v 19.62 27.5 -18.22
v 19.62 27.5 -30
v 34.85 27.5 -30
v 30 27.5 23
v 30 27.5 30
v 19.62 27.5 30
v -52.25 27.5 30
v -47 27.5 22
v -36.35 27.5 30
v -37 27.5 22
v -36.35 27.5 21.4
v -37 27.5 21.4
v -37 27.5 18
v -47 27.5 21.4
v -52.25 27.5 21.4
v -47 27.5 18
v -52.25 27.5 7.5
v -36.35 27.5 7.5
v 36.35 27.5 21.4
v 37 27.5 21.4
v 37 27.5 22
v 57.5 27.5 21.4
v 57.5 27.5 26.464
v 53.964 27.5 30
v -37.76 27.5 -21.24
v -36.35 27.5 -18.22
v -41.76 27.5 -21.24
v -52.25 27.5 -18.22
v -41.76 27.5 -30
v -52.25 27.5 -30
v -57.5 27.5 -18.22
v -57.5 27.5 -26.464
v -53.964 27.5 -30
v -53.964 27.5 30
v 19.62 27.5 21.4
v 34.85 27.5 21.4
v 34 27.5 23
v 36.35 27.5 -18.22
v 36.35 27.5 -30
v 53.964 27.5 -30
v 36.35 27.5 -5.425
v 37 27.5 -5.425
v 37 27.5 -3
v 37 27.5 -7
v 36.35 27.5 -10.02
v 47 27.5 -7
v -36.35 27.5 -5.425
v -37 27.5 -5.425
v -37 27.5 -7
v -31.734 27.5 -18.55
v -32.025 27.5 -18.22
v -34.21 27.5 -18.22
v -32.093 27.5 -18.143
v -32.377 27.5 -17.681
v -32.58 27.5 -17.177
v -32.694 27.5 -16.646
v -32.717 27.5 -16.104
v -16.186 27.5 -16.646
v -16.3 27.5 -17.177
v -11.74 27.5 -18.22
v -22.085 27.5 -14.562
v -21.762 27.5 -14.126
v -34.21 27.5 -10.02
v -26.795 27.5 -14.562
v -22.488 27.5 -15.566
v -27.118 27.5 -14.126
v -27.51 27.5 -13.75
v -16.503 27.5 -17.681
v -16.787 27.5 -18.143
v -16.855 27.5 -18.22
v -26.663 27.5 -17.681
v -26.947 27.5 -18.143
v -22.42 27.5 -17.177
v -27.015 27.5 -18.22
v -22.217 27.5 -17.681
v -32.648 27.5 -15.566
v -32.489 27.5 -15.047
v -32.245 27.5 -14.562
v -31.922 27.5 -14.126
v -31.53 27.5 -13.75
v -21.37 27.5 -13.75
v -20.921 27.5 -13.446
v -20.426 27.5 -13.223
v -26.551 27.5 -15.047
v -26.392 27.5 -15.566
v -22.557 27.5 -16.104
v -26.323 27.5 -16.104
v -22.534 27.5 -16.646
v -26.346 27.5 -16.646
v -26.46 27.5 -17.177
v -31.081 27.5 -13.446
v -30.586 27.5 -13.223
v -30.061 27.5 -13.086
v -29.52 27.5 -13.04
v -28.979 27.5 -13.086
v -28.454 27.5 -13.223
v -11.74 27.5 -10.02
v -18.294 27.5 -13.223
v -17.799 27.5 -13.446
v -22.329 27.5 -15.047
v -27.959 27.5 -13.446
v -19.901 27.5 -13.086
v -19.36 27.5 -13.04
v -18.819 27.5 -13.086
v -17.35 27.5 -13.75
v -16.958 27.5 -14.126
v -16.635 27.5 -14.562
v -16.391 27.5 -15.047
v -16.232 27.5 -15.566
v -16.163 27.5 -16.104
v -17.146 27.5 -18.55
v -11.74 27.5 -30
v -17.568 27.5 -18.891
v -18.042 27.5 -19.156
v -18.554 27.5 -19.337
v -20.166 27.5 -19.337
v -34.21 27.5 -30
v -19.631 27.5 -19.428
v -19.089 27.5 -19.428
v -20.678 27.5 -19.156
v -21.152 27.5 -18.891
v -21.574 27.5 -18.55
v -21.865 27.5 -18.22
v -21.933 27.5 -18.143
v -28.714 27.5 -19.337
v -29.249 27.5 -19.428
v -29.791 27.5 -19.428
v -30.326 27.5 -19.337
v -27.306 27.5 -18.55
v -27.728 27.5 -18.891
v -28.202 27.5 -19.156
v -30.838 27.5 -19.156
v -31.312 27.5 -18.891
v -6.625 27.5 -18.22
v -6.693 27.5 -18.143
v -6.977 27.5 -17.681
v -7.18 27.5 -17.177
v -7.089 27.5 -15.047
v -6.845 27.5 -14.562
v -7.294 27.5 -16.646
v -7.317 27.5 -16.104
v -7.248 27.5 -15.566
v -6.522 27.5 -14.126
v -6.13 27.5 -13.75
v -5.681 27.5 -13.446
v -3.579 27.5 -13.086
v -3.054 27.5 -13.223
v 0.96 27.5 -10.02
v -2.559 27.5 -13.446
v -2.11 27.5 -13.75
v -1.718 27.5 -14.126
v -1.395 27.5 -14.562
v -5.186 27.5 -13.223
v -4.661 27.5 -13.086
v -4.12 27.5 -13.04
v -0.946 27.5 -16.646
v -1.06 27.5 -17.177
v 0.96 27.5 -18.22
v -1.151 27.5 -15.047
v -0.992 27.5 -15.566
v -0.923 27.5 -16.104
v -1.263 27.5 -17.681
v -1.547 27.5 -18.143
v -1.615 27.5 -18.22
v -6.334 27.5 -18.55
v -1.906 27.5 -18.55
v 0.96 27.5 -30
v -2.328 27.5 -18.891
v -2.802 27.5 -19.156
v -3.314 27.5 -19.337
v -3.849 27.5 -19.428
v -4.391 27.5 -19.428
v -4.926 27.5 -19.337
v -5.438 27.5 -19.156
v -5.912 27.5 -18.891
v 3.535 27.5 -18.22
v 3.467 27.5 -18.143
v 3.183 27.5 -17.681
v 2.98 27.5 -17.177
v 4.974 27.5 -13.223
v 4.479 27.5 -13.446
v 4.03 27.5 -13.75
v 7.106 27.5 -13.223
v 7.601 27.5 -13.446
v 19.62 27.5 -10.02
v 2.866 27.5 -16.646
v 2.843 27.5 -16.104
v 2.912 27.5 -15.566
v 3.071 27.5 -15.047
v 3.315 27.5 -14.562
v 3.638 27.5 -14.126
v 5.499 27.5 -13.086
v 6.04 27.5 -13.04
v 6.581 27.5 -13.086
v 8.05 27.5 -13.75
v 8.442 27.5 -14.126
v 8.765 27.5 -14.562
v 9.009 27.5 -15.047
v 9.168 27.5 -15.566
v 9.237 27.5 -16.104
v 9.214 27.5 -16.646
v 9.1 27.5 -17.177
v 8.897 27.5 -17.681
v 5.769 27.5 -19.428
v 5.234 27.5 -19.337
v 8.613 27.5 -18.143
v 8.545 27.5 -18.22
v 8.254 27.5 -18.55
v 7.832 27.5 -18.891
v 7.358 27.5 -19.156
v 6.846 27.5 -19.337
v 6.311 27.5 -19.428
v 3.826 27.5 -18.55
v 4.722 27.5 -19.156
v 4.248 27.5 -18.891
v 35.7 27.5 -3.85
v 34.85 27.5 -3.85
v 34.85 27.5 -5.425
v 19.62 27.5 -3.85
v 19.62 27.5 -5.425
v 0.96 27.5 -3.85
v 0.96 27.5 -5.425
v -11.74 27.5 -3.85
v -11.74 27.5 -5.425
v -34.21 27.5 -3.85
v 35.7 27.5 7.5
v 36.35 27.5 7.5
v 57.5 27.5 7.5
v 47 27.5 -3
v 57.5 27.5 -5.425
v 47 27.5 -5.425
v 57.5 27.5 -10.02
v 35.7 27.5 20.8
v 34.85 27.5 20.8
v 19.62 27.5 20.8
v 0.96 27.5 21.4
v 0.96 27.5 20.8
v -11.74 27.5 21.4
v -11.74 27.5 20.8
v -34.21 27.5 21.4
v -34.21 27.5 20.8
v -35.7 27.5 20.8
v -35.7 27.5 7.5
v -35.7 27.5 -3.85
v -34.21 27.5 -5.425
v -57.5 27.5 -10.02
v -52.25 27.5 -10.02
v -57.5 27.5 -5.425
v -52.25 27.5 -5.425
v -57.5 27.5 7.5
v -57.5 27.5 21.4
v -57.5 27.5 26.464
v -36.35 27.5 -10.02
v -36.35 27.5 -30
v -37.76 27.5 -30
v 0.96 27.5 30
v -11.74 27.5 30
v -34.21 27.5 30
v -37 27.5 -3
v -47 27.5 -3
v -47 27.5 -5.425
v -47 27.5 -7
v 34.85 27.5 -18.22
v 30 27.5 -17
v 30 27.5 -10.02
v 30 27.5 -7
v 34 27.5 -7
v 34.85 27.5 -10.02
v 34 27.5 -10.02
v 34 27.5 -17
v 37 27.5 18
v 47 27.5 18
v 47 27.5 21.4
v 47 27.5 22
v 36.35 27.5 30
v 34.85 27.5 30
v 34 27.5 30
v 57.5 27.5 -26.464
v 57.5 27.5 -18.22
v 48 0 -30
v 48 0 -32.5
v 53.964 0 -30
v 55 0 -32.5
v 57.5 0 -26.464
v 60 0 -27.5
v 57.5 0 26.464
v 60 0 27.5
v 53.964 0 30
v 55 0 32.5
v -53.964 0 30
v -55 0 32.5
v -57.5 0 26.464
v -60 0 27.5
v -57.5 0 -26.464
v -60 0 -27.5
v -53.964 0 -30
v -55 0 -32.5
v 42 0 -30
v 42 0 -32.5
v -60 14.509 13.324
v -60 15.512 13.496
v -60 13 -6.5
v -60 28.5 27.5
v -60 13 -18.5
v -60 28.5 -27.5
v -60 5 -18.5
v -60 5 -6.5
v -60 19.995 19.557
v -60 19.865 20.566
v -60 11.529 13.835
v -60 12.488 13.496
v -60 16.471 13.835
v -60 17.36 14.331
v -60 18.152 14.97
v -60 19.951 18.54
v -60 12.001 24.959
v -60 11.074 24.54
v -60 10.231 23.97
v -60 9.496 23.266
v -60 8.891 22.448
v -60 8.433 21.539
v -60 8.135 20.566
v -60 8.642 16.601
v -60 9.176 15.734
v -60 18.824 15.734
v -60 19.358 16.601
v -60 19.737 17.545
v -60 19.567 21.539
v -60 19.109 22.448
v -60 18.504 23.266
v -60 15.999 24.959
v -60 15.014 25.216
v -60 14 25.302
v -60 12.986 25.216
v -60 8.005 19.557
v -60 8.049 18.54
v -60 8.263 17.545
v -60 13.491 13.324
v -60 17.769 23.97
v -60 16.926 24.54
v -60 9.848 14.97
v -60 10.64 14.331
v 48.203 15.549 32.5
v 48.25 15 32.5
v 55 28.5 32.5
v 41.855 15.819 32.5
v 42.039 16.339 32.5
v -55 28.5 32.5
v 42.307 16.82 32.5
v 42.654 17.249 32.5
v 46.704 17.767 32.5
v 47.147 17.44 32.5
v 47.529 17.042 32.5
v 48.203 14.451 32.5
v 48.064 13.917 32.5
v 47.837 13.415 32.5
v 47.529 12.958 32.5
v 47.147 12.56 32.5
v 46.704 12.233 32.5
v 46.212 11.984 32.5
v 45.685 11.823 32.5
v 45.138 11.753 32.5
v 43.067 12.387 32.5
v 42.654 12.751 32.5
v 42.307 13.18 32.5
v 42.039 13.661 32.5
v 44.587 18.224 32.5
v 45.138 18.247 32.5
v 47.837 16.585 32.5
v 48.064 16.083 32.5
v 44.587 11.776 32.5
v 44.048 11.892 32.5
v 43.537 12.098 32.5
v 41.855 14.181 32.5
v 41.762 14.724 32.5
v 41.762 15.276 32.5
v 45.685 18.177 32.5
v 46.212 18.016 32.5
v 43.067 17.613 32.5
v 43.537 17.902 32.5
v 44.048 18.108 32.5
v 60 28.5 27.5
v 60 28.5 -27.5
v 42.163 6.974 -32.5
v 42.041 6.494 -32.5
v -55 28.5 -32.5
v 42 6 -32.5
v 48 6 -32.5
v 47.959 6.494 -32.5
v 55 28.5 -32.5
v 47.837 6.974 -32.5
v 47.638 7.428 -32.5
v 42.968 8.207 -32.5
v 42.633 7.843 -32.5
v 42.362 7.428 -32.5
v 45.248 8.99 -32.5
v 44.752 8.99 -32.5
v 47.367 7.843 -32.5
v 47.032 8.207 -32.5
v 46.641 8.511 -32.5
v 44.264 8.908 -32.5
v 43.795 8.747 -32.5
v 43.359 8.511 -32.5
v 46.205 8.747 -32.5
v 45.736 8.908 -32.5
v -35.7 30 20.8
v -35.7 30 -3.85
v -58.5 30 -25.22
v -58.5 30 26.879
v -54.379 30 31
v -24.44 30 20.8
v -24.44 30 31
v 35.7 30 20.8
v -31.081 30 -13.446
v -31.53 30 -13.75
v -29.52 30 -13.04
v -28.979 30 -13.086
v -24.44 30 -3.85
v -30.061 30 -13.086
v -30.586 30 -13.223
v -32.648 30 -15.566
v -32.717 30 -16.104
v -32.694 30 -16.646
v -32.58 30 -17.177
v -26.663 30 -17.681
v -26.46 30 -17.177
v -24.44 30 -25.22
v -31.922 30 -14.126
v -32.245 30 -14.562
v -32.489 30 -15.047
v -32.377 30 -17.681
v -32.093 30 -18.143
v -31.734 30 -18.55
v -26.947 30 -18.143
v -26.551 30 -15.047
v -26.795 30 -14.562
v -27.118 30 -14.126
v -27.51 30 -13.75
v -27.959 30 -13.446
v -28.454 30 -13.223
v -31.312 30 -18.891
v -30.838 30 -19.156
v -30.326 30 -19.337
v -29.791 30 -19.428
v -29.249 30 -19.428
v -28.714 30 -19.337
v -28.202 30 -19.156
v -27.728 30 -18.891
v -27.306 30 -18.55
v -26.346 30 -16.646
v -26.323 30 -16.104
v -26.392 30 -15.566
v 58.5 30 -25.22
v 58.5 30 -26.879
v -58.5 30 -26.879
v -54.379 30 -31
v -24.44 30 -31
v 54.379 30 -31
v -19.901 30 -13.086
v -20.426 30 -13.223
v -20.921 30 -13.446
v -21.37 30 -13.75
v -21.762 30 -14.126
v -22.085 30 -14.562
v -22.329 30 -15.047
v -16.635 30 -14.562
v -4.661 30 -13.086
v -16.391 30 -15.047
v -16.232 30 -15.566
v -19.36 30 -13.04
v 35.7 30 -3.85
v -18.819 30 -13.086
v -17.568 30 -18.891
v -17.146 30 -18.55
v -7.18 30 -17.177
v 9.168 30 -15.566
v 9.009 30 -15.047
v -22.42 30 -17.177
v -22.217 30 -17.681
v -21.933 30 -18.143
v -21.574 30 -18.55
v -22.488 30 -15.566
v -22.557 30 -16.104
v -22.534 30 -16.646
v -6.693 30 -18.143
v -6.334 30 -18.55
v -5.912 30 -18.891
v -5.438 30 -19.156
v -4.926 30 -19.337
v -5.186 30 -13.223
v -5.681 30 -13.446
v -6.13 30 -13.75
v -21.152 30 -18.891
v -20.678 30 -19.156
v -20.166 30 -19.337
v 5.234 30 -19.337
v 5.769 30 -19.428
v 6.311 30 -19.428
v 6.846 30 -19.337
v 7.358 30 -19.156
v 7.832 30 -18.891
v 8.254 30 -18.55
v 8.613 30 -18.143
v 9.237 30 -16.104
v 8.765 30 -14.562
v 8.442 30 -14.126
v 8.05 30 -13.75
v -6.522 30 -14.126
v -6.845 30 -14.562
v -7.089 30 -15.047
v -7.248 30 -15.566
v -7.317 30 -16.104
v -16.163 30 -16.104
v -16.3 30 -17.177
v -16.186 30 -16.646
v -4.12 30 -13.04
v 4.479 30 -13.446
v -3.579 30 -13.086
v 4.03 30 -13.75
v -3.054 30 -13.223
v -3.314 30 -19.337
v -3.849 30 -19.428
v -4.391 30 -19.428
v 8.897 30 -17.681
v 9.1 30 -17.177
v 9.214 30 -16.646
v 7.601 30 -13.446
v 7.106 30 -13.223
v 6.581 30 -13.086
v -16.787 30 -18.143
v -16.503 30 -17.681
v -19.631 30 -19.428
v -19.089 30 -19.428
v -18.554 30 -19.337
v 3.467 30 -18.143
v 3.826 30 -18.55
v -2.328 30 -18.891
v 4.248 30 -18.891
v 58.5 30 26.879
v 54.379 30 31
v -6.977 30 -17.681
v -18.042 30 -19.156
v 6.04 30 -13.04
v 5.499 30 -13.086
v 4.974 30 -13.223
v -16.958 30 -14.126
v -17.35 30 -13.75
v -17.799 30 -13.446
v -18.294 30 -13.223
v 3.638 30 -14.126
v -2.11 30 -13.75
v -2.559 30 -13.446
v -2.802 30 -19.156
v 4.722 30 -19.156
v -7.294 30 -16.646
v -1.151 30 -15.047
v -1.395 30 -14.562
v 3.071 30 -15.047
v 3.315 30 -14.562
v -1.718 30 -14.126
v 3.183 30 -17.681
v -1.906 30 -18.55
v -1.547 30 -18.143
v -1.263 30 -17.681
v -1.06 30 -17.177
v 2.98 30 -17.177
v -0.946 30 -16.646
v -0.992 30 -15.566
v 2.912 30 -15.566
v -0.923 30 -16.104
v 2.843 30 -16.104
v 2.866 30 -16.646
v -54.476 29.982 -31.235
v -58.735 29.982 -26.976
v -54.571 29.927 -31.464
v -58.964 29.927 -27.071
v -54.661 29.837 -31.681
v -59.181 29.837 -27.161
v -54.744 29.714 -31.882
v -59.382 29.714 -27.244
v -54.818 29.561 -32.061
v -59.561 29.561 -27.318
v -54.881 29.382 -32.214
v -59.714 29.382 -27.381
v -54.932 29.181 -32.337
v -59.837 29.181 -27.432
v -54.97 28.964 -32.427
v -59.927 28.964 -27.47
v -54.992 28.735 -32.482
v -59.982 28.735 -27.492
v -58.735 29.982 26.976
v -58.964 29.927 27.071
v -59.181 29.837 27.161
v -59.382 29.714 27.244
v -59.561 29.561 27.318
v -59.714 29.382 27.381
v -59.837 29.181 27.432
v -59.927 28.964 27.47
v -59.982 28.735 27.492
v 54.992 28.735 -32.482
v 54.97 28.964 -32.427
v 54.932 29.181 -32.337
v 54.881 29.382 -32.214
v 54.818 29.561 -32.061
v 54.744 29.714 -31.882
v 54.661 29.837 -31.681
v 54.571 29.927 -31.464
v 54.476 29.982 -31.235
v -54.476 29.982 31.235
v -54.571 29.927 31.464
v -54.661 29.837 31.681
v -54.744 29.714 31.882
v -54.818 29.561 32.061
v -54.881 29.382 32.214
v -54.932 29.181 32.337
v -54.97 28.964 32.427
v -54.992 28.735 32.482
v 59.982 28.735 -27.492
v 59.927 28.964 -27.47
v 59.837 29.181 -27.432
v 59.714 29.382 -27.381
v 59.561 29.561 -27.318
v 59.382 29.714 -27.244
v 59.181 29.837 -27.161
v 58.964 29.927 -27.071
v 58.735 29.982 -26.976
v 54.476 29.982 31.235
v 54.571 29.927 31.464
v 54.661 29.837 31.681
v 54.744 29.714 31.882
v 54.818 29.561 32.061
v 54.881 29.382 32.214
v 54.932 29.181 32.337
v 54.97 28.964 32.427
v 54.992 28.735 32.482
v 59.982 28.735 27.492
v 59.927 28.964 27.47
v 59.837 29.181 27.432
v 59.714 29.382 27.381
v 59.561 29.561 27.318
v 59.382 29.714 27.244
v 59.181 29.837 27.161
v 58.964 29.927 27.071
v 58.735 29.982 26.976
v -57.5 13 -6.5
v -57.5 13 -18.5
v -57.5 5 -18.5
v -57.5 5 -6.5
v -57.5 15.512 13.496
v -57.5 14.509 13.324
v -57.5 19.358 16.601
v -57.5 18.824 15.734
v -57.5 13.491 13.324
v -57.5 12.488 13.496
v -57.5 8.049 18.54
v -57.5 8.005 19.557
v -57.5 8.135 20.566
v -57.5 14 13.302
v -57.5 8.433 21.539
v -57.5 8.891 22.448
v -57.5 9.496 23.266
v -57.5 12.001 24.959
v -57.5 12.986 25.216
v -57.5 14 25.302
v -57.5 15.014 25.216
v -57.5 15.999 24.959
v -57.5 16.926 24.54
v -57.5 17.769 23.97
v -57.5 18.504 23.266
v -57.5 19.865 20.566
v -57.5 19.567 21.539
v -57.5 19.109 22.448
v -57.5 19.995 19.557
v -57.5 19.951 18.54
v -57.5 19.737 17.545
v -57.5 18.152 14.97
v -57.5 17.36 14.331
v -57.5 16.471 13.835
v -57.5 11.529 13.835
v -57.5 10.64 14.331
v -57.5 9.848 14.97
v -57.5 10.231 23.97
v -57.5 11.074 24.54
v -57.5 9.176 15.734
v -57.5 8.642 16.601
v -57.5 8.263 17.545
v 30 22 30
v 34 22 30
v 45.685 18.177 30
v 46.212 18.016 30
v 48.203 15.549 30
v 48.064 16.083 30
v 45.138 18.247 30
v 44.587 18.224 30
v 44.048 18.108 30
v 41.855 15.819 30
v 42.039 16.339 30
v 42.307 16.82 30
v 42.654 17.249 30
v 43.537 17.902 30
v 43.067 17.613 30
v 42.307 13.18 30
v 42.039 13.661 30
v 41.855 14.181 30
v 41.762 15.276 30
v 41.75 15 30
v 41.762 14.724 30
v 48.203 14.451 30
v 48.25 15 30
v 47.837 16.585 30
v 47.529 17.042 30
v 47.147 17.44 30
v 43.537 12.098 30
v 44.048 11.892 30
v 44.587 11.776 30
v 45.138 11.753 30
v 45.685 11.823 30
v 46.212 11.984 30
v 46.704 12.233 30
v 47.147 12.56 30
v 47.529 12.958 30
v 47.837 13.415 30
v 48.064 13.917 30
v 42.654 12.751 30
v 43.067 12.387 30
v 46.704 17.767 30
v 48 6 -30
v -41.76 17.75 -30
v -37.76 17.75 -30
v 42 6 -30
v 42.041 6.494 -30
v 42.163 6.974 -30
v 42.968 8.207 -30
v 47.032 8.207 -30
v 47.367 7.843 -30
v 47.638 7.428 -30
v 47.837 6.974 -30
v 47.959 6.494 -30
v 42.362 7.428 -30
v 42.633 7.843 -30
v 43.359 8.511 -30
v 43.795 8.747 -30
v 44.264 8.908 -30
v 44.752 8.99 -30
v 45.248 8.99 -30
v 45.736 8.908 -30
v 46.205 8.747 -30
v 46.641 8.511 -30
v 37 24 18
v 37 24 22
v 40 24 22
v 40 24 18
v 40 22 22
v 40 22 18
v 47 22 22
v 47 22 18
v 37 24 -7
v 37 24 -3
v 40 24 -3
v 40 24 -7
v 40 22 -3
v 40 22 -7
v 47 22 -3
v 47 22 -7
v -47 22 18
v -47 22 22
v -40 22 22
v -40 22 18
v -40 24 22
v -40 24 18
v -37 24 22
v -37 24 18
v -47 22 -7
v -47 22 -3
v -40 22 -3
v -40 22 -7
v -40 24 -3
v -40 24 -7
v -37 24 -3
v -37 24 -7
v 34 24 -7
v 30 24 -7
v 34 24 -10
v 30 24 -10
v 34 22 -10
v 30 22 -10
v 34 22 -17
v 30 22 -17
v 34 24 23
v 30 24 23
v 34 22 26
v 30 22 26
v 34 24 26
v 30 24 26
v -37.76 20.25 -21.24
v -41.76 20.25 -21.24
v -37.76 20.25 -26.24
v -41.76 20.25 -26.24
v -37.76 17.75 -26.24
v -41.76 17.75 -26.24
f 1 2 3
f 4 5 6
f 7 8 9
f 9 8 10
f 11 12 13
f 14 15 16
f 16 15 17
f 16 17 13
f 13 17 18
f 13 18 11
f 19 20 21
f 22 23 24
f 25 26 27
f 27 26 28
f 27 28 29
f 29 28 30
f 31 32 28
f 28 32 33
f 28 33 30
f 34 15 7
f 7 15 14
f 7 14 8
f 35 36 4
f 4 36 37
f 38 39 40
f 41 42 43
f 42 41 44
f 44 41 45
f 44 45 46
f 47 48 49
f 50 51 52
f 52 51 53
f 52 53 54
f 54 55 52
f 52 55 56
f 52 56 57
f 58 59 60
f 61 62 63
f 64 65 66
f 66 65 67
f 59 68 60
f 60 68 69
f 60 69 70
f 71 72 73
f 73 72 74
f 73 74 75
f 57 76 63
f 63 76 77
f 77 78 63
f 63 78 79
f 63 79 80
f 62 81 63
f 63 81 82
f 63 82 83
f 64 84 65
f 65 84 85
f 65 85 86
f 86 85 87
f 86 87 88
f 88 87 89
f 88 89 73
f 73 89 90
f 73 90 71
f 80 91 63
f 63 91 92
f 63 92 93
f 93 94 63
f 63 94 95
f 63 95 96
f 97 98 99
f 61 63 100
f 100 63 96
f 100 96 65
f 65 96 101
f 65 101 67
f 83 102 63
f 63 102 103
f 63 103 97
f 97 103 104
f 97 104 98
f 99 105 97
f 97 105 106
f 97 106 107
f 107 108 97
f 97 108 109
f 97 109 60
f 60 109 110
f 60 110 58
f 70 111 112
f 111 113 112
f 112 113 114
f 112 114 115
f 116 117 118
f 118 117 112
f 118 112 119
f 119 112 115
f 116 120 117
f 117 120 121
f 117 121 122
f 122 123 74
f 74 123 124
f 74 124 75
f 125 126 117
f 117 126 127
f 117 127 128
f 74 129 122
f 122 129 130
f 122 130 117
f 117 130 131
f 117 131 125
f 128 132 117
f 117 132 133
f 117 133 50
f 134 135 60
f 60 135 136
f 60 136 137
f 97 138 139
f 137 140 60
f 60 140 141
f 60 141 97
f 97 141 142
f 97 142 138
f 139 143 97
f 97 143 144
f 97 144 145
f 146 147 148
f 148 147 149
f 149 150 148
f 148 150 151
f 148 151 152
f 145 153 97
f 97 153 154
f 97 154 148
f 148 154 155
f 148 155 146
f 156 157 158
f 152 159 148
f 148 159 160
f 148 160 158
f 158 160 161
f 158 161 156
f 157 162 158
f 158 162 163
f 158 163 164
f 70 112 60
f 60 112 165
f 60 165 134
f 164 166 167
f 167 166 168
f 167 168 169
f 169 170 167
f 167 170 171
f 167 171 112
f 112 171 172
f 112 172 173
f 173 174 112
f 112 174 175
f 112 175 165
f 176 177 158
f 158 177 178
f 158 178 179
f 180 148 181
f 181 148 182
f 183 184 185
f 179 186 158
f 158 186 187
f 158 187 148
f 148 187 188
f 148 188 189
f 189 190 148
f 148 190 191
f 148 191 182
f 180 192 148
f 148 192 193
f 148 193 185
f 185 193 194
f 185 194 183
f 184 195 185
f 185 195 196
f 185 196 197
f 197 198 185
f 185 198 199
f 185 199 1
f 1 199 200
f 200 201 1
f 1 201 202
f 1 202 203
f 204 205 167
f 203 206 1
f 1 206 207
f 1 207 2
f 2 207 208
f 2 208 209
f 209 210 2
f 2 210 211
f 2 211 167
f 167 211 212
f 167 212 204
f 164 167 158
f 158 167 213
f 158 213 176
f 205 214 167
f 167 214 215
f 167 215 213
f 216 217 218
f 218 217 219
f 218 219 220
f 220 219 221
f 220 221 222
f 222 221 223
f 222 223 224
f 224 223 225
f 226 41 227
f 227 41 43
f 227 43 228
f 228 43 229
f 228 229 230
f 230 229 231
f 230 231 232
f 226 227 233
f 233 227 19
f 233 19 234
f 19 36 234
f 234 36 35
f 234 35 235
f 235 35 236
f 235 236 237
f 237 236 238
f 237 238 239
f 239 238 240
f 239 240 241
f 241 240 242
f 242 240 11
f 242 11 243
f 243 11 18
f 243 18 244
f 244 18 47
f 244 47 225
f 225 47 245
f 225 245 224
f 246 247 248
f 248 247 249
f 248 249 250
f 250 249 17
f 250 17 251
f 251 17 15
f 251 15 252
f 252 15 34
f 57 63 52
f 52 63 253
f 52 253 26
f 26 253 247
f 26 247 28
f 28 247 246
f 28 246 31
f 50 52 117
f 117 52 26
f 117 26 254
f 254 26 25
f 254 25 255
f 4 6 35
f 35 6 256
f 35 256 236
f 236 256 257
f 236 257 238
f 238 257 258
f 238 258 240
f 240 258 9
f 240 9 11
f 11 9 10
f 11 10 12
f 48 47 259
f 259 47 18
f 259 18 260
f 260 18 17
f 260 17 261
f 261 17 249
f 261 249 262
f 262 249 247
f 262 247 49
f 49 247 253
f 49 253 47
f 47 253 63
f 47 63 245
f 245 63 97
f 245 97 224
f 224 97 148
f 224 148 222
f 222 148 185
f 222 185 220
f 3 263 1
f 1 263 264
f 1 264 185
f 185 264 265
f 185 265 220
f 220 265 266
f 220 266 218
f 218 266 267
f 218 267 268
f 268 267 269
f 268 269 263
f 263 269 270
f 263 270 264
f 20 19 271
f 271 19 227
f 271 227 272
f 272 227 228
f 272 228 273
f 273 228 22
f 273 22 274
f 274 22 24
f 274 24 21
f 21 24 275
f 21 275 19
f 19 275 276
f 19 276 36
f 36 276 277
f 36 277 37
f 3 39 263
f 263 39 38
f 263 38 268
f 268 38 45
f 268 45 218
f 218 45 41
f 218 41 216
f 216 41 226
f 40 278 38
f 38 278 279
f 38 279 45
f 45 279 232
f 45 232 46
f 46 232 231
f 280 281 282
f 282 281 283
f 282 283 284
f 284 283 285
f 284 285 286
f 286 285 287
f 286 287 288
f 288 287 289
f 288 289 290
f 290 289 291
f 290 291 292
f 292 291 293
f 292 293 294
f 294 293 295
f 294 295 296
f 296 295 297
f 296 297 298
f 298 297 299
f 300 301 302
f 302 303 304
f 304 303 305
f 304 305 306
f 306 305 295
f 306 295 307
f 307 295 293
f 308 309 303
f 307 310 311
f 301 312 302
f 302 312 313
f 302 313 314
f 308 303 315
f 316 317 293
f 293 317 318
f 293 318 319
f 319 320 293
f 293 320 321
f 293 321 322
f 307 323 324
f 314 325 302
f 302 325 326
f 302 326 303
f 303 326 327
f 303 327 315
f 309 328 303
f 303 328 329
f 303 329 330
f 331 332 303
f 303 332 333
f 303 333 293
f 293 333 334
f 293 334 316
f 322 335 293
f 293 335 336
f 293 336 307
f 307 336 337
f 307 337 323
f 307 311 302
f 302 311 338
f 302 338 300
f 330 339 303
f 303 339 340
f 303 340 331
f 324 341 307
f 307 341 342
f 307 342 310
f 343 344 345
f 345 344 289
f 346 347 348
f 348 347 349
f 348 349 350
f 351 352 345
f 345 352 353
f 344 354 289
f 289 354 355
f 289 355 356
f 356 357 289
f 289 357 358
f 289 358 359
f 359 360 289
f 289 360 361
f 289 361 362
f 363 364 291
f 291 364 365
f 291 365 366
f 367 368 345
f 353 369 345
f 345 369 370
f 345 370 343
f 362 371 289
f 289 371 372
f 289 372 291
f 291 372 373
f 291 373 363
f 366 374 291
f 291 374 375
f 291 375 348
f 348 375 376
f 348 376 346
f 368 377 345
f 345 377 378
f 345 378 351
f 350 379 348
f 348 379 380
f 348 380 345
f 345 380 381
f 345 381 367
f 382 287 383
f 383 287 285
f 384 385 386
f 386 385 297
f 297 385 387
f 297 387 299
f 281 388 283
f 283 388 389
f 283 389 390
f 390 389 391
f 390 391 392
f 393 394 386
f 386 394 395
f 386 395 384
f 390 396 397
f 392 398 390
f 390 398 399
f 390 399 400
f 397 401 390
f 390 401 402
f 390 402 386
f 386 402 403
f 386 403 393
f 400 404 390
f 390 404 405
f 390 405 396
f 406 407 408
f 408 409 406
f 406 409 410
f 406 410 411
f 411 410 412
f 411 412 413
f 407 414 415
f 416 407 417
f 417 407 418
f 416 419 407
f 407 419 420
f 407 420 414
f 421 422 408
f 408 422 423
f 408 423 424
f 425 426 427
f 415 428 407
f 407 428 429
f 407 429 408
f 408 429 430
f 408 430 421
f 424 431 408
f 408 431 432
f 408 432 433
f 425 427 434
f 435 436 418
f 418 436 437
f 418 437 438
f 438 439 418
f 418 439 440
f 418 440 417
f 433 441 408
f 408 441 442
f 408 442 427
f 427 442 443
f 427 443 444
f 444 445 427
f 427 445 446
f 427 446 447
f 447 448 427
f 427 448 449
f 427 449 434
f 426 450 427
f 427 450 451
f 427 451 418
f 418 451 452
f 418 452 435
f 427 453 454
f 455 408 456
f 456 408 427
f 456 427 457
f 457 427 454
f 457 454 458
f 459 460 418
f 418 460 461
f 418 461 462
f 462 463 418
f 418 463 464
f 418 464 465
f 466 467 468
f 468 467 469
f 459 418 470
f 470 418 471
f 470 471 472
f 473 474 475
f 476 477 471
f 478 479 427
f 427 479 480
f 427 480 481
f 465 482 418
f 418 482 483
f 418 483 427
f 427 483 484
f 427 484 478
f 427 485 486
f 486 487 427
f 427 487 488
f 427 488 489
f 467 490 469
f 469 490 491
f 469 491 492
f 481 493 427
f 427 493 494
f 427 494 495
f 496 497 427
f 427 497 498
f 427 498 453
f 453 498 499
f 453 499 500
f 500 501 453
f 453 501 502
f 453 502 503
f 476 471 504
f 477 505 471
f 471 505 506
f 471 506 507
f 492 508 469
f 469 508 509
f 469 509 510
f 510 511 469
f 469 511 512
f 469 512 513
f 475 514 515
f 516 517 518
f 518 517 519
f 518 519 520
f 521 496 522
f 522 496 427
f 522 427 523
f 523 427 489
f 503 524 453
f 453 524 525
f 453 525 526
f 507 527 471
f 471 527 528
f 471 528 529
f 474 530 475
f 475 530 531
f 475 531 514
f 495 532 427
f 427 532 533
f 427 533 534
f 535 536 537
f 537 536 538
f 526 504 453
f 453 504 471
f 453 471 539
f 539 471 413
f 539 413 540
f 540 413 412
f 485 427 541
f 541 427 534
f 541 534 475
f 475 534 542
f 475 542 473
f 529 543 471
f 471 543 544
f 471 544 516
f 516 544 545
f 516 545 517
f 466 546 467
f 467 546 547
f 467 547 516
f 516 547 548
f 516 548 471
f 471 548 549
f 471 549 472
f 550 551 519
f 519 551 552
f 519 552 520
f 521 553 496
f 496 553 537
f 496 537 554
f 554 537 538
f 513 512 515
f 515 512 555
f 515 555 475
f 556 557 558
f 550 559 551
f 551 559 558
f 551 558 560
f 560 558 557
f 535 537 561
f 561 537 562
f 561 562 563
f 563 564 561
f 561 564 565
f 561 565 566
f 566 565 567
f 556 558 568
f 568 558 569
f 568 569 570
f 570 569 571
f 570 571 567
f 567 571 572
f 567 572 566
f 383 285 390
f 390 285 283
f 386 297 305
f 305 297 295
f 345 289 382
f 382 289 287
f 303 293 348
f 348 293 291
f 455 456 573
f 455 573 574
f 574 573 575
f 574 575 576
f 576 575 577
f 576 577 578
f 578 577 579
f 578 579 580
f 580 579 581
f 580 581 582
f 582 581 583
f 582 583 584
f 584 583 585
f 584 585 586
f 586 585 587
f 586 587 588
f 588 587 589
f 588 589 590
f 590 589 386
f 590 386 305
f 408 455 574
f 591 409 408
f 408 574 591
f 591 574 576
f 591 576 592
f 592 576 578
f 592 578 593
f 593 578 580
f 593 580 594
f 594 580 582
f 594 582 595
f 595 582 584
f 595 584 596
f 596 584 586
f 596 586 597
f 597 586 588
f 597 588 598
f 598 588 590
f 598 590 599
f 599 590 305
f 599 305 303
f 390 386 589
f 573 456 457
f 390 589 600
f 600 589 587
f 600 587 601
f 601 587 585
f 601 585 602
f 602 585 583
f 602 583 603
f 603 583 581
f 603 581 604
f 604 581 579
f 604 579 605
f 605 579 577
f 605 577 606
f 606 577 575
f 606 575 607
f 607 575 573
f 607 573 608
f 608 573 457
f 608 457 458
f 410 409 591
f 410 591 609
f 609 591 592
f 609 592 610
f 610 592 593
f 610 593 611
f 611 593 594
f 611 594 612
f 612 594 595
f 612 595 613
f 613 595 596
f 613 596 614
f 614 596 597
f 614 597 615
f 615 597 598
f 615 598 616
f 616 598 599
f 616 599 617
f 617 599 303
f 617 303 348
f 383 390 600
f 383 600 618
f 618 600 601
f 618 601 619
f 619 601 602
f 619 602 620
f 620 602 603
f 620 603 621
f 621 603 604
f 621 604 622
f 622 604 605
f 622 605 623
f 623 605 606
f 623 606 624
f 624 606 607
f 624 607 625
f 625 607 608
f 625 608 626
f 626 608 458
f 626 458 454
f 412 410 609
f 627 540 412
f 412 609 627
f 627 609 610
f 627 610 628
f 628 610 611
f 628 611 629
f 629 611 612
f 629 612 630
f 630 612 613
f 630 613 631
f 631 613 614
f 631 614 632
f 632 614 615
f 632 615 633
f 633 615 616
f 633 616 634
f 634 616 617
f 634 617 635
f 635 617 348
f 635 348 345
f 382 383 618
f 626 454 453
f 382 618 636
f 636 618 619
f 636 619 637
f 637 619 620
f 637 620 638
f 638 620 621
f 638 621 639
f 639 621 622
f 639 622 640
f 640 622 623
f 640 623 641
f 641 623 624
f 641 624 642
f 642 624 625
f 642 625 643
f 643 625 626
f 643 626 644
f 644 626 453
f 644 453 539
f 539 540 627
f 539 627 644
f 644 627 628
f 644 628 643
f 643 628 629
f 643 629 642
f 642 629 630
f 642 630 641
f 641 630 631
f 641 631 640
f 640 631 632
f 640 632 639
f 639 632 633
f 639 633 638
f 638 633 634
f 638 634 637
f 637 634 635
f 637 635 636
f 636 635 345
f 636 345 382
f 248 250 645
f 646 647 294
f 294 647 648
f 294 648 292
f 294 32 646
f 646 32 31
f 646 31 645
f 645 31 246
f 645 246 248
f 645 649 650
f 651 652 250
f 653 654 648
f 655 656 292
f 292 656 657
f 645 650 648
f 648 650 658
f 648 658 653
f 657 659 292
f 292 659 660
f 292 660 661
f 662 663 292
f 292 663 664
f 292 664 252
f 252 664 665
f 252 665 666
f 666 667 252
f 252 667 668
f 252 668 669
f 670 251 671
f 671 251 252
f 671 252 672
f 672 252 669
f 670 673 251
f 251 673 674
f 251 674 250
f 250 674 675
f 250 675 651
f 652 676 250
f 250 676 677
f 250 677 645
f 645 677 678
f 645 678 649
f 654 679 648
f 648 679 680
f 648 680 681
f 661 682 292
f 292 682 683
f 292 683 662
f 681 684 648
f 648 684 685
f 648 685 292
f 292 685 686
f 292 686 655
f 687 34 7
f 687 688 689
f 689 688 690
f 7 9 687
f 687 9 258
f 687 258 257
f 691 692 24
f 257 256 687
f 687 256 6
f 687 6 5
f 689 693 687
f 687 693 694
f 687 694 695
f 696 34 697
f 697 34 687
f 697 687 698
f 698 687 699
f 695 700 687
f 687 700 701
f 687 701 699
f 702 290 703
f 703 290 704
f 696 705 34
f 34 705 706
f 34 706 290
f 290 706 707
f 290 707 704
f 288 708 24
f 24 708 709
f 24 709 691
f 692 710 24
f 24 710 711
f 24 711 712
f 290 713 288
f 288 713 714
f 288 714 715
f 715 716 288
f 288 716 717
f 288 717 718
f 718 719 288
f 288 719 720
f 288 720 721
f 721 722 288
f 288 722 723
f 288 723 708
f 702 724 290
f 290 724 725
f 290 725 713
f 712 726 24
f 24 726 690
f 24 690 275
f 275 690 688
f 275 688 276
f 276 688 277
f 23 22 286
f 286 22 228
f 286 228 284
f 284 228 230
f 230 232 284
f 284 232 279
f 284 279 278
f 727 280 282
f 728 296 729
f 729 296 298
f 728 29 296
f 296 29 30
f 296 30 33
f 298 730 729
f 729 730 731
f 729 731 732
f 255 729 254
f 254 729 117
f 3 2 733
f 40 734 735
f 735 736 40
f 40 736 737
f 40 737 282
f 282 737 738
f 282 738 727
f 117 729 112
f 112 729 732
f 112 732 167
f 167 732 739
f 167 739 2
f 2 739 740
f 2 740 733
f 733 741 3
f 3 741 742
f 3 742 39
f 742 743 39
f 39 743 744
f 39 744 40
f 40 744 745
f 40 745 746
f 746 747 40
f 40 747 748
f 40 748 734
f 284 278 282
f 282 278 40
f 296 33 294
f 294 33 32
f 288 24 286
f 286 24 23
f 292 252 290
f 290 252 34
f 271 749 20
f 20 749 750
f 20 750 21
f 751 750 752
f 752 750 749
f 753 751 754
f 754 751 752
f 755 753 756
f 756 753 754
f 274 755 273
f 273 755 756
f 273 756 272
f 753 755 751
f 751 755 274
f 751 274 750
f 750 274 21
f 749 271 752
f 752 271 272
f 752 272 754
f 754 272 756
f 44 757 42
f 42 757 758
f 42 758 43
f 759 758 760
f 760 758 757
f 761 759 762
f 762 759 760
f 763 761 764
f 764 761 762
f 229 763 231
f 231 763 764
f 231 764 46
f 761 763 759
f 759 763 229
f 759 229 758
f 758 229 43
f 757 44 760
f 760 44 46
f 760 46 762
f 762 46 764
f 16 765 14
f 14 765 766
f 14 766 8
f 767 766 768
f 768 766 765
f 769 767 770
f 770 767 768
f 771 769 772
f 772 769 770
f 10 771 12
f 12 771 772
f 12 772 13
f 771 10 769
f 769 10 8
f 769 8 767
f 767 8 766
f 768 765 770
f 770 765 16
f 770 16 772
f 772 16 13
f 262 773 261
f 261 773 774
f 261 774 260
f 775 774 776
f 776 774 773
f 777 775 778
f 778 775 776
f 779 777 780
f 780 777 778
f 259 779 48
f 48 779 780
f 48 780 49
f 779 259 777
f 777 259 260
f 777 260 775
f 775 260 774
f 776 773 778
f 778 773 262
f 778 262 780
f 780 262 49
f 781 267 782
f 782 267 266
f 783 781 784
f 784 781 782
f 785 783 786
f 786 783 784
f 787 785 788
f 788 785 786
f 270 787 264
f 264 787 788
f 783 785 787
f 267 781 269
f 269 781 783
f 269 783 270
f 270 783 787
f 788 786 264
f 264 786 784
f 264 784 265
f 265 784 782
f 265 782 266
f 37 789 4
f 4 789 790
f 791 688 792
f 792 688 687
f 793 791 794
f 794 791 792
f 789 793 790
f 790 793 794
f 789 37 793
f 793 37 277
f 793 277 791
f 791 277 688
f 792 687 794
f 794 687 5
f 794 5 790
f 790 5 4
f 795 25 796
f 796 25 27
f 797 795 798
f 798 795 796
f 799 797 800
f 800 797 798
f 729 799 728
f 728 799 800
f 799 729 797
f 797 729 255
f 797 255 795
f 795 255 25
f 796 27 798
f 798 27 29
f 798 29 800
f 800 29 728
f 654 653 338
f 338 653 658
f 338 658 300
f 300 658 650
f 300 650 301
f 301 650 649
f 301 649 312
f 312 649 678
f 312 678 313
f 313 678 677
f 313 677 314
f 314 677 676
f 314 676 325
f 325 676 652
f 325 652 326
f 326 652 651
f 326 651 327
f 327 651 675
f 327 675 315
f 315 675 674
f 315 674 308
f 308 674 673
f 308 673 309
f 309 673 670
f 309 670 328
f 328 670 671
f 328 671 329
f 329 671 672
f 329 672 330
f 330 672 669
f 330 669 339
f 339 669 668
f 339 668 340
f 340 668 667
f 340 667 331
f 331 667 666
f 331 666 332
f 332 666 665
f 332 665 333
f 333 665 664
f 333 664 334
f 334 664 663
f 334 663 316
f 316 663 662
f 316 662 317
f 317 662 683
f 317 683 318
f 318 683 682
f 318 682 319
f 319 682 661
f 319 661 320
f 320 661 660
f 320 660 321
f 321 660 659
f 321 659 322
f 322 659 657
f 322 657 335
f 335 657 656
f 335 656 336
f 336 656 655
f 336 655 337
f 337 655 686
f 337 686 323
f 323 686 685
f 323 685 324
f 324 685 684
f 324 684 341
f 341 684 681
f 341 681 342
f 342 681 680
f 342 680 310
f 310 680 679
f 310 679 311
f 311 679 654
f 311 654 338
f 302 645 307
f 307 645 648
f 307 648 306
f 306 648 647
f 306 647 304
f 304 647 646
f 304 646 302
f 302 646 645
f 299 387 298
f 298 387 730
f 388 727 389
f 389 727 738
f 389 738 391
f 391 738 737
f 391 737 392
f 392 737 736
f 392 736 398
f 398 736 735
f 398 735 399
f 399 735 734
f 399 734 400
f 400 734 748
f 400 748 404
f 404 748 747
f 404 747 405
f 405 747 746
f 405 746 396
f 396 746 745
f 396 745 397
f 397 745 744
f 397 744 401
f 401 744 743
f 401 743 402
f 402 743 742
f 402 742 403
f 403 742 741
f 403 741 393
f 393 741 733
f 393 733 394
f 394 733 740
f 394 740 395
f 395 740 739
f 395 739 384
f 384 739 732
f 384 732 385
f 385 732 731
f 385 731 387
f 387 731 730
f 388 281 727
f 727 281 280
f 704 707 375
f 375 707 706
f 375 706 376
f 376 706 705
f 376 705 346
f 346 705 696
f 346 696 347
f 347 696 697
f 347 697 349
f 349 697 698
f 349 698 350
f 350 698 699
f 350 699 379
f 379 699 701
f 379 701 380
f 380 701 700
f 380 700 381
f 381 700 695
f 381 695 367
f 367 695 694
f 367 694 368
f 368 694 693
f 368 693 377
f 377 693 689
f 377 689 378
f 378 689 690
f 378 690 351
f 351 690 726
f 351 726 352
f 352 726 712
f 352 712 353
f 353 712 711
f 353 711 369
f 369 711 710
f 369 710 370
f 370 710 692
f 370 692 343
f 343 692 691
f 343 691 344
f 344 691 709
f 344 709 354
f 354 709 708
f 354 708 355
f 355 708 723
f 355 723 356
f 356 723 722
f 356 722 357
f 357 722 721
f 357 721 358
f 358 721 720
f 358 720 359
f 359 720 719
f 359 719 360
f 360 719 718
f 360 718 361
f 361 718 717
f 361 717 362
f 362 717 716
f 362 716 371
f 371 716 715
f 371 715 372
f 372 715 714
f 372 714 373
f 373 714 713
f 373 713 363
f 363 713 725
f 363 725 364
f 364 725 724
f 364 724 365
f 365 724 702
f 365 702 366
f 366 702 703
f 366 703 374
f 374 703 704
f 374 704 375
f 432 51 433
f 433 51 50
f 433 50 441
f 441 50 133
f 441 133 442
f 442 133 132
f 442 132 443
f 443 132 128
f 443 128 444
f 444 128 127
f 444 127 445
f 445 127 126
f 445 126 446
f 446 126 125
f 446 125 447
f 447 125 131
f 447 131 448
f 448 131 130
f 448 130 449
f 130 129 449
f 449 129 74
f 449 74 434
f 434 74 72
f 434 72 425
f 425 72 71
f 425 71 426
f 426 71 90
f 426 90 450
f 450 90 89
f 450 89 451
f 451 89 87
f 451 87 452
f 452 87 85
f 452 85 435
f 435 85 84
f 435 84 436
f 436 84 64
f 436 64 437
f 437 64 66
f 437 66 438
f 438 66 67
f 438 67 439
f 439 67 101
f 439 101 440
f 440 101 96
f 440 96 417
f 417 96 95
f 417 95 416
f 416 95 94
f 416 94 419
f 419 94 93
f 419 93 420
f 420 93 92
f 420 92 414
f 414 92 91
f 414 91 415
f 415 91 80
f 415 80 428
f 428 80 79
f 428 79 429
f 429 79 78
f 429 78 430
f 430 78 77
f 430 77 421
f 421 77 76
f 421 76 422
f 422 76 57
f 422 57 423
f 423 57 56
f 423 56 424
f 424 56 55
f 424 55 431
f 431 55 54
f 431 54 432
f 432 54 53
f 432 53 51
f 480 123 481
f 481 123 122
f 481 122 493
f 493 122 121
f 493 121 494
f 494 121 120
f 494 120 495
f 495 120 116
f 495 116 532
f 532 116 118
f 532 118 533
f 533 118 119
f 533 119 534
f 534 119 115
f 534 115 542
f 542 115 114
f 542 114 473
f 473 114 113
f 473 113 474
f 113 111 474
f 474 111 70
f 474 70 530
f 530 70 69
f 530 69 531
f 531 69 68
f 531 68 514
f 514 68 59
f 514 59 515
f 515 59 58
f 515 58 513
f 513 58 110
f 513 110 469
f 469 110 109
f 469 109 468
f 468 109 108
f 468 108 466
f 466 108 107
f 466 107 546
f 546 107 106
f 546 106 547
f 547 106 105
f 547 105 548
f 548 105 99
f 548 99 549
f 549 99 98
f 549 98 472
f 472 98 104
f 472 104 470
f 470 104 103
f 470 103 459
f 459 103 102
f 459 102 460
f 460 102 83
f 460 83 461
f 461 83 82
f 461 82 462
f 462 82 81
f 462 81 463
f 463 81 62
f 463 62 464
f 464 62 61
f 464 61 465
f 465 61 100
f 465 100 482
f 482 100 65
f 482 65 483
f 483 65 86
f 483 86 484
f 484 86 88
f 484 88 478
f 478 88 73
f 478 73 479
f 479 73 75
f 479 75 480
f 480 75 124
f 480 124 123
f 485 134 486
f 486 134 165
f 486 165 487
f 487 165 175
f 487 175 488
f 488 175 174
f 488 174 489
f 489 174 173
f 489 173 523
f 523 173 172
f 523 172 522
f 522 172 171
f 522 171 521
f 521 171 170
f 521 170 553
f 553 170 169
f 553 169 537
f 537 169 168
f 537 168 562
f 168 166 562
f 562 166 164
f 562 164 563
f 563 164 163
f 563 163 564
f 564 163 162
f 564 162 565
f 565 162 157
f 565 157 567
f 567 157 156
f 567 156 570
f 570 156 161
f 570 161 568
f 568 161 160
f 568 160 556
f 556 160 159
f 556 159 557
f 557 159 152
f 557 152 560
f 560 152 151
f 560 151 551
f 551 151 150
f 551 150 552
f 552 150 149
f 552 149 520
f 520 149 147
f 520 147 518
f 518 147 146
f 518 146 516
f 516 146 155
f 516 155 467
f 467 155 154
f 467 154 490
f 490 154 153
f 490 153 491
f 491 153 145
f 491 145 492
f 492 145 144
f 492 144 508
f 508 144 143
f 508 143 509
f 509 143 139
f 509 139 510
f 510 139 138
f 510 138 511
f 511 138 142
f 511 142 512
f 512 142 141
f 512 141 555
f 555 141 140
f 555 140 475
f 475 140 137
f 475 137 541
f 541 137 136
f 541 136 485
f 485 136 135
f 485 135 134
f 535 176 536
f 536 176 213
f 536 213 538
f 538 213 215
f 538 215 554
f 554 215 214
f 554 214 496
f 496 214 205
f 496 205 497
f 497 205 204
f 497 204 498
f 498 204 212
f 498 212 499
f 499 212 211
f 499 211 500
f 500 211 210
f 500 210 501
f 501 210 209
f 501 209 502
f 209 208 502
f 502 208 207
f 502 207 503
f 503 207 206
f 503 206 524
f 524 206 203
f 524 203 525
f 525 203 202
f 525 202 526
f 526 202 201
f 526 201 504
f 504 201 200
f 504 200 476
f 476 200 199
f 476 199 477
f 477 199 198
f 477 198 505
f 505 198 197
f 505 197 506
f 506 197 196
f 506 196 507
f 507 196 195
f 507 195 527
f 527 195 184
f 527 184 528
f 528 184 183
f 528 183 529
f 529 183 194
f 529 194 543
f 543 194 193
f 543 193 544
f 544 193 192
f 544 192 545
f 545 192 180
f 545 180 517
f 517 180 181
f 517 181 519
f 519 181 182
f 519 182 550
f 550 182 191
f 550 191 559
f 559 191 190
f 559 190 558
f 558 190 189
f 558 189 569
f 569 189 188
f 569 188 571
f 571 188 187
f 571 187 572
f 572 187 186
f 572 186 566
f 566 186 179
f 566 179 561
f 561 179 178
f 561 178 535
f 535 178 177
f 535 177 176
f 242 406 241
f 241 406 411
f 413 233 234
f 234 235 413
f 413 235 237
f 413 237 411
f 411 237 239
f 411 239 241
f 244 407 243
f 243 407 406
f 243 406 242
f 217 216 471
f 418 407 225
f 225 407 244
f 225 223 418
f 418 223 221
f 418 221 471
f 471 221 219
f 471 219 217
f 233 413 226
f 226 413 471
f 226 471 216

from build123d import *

# Parameters (mm, degrees)
SKETCH1_W               = 120
SKETCH1_H               = 65
BOSS_EXTRUDE1_DEPTH     = 30
CHAMFER1_SIZE           = 5
FILLET1_R               = 1.5
SHELL1_T                = -2.5
BOSS_EXTRUDE2_DEPTH     = 2
LPATTERN1_COUNT         = 2
LPATTERN1_PITCH         = 25
MIRROR1_COPY_1_DEPTH    = 2
BOSS_EXTRUDE3_DEPTH     = 2
BOSS_EXTRUDE4_DEPTH     = 2
CUT_EXTRUDE1_REACH      = 129.892
SKETCH7_R               = 6
SKETCH7_W               = 12
SKETCH7_H               = 8
CUT_EXTRUDE3_DEPTH      = 94.407708461
CUT_EXTRUDE3_DEPTH_BACK = 10
SKETCH9_R               = 3.25
CUT_EXTRUDE4_DEPTH      = 10
SKETCH6_R               = 3.2
SKETCH6_W               = 71.4
SKETCH6_H               = 24.65
CUT_EXTRUDE5_DEPTH      = 10


with BuildPart() as part:
    # Sketch1 → Boss-Extrude1 (new body)
    with BuildSketch(Plane(origin=(0, 0, 0), x_dir=(1, 0, 0), z_dir=(0, 1, 0))):
        Rectangle(SKETCH1_W, SKETCH1_H)
    extrude(amount=BOSS_EXTRUDE1_DEPTH)

    # Chamfer1
    chamfer1_edges = [part.edges().sort_by_distance(p)[0] for p in [
        (-60, 15, -32.5),
        (60, 15, -32.5),
        (60, 15, 32.5),
        (-60, 15, 32.5),
    ]]
    chamfer(chamfer1_edges, length=CHAMFER1_SIZE)

    # Fillet1
    fillet1_edges = [part.edges().sort_by_distance(p)[0] for p in [
        (0, 30, -32.5),
        (60, 30, 0),
        (-60, 30, 0),
        (0, 30, 32.5),
        (-57.5, 30, 30),
        (57.5, 30, 30),
        (-57.5, 30, -30),
        (57.5, 30, -30),
    ]]
    fillet(fillet1_edges, radius=FILLET1_R)

    # Shell1
    shell1_openings = [part.faces().sort_by_distance(p)[0] for p in [
        (0, 0, 0),
    ]]
    offset(amount=SHELL1_T, openings=shell1_openings, kind=Kind.INTERSECTION)

    # Sketch2 → Boss-Extrude2 (add, symmetric)
    with BuildSketch(Plane.XY.offset(20)):
        Polygon((47, 27.5), (47, 22), (40, 22), (40, 24), (37, 24), (37, 27.5), align=None)
    boss_extrude2 = extrude(amount=BOSS_EXTRUDE2_DEPTH, both=True)

    # LPattern1: Boss-Extrude2 ×2
    with Locations(*[(0, 0, -i * LPATTERN1_PITCH) for i in range(1, LPATTERN1_COUNT)]):
        add(boss_extrude2)

    # Mirror1: Boss-Extrude2 across plane
    add(boss_extrude2.mirror(Plane(origin=(0, 0, 0), x_dir=(0, 0, 1), z_dir=(1, 0, 0))))

    # Mirror1 copy 1 sketch → Mirror1 copy 1 (add, symmetric)
    with BuildSketch(Plane(origin=(0, 0, -5), x_dir=(-1, 0, 0), z_dir=(0, 0, 1))):
        Polygon((47, -27.5), (47, -22), (40, -22), (40, -24), (37, -24), (37, -27.5), align=None)
    extrude(amount=MIRROR1_COPY_1_DEPTH, both=True)

    # Sketch3 → Boss-Extrude3 (add, symmetric)
    with BuildSketch(Plane(origin=(32, 0, 0), x_dir=(0, 0, -1), z_dir=(1, 0, 0))):
        Polygon((17, 27.5), (17, 22), (10, 22), (10, 24), (7, 24), (7, 27.5), align=None)
        Polygon((-23, 27.5), (-30, 27.5), (-30, 22), (-26, 22), (-26, 24), (-23, 24), align=None)
    extrude(amount=BOSS_EXTRUDE3_DEPTH, both=True)

    # Sketch5 → Boss-Extrude4 (add, symmetric)
    with BuildSketch(Plane(origin=(-39.76, 0, 0), x_dir=(0, 0, -1), z_dir=(1, 0, 0))):
        Polygon((21.24, 27.5), (21.24, 20.25), (26.24, 20.25), (26.24, 17.75), (30, 17.75), (30, 27.5), align=None)
    extrude(amount=BOSS_EXTRUDE4_DEPTH, both=True)

    # Sketch7 → Cut-Extrude1 (cut, up to next)
    with BuildSketch(Plane.ZY.offset(60), mode=Mode.PRIVATE) as cut_extrude1_sk1:
        with Locations((19.3022, 14)):
            Circle(SKETCH7_R)
    cut_extrude1_tool1 = extrude(cut_extrude1_sk1.sketch, amount=-CUT_EXTRUDE1_REACH, mode=Mode.PRIVATE) & part.part
    # Sketch7 → Cut-Extrude1 (cut, up to next)
    with BuildSketch(Plane.ZY.offset(60), mode=Mode.PRIVATE) as cut_extrude1_sk2:
        with Locations((-12.5, 9)):
            Rectangle(SKETCH7_W, SKETCH7_H)
    cut_extrude1_tool2 = extrude(cut_extrude1_sk2.sketch, amount=-CUT_EXTRUDE1_REACH, mode=Mode.PRIVATE) & part.part
    add(cut_extrude1_tool1.solids().sort_by_distance((-60, 14, 19.3022))[0], mode=Mode.SUBTRACT)
    add(cut_extrude1_tool2.solids().sort_by_distance((-60, 9, -12.5))[0], mode=Mode.SUBTRACT)

    # Sketch8 → Cut-Extrude3 (cut, two sides: drawn at the far end of the back side and taken through both)
    with BuildSketch(Plane(origin=(0, 0, -32.5), x_dir=(-1, 0, 0), z_dir=(0, 0, -1)).offset(-CUT_EXTRUDE3_DEPTH_BACK)):
        with BuildLine():
            Line((-42, -234.178500307), (-42, 0))
            Line((-42, 0), (-42, 6))
            ThreePointArc((-42, 6), (-45, 9), (-48, 6))
            Line((-48, 6), (-48, 0))
            Line((-48, 0), (-48, -234.178500307))
            Line((-48, -234.178500307), (-48, -702.535500922))
            Line((-48, -702.535500922), (-42, -702.535500922))
            Line((-42, -702.535500922), (-42, -234.178500307))
        make_face()
    extrude(amount=CUT_EXTRUDE3_DEPTH + CUT_EXTRUDE3_DEPTH_BACK, mode=Mode.SUBTRACT)

    # Sketch9 → Cut-Extrude4 (cut)
    with BuildSketch(Plane.XY.offset(32.5)):
        with Locations((45, 15)):
            Circle(SKETCH9_R)
    extrude(amount=-CUT_EXTRUDE4_DEPTH, mode=Mode.SUBTRACT)

    # Sketch6 → Cut-Extrude5 (cut)
    with BuildSketch(Plane(origin=(0, 30, 0), x_dir=(1, 0, 0), z_dir=(0, 1, 0))):
        with Locations(Location((-29.52, 16.24, 0), (0, 0, 270))):
            Circle(SKETCH6_R)
        with Locations(Location((-19.36, 16.24, 0), (0, 0, 270))):
            Circle(SKETCH6_R)
        with Locations(Location((-4.12, 16.24, 0), (0, 0, 270))):
            Circle(SKETCH6_R)
        with Locations(Location((6.04, 16.24, 0), (0, 0, 270))):
            Circle(SKETCH6_R)
        with Locations((0, -8.475)):
            Rectangle(SKETCH6_W, SKETCH6_H)
    extrude(amount=-CUT_EXTRUDE5_DEPTH, mode=Mode.SUBTRACT)


solid = part.part
